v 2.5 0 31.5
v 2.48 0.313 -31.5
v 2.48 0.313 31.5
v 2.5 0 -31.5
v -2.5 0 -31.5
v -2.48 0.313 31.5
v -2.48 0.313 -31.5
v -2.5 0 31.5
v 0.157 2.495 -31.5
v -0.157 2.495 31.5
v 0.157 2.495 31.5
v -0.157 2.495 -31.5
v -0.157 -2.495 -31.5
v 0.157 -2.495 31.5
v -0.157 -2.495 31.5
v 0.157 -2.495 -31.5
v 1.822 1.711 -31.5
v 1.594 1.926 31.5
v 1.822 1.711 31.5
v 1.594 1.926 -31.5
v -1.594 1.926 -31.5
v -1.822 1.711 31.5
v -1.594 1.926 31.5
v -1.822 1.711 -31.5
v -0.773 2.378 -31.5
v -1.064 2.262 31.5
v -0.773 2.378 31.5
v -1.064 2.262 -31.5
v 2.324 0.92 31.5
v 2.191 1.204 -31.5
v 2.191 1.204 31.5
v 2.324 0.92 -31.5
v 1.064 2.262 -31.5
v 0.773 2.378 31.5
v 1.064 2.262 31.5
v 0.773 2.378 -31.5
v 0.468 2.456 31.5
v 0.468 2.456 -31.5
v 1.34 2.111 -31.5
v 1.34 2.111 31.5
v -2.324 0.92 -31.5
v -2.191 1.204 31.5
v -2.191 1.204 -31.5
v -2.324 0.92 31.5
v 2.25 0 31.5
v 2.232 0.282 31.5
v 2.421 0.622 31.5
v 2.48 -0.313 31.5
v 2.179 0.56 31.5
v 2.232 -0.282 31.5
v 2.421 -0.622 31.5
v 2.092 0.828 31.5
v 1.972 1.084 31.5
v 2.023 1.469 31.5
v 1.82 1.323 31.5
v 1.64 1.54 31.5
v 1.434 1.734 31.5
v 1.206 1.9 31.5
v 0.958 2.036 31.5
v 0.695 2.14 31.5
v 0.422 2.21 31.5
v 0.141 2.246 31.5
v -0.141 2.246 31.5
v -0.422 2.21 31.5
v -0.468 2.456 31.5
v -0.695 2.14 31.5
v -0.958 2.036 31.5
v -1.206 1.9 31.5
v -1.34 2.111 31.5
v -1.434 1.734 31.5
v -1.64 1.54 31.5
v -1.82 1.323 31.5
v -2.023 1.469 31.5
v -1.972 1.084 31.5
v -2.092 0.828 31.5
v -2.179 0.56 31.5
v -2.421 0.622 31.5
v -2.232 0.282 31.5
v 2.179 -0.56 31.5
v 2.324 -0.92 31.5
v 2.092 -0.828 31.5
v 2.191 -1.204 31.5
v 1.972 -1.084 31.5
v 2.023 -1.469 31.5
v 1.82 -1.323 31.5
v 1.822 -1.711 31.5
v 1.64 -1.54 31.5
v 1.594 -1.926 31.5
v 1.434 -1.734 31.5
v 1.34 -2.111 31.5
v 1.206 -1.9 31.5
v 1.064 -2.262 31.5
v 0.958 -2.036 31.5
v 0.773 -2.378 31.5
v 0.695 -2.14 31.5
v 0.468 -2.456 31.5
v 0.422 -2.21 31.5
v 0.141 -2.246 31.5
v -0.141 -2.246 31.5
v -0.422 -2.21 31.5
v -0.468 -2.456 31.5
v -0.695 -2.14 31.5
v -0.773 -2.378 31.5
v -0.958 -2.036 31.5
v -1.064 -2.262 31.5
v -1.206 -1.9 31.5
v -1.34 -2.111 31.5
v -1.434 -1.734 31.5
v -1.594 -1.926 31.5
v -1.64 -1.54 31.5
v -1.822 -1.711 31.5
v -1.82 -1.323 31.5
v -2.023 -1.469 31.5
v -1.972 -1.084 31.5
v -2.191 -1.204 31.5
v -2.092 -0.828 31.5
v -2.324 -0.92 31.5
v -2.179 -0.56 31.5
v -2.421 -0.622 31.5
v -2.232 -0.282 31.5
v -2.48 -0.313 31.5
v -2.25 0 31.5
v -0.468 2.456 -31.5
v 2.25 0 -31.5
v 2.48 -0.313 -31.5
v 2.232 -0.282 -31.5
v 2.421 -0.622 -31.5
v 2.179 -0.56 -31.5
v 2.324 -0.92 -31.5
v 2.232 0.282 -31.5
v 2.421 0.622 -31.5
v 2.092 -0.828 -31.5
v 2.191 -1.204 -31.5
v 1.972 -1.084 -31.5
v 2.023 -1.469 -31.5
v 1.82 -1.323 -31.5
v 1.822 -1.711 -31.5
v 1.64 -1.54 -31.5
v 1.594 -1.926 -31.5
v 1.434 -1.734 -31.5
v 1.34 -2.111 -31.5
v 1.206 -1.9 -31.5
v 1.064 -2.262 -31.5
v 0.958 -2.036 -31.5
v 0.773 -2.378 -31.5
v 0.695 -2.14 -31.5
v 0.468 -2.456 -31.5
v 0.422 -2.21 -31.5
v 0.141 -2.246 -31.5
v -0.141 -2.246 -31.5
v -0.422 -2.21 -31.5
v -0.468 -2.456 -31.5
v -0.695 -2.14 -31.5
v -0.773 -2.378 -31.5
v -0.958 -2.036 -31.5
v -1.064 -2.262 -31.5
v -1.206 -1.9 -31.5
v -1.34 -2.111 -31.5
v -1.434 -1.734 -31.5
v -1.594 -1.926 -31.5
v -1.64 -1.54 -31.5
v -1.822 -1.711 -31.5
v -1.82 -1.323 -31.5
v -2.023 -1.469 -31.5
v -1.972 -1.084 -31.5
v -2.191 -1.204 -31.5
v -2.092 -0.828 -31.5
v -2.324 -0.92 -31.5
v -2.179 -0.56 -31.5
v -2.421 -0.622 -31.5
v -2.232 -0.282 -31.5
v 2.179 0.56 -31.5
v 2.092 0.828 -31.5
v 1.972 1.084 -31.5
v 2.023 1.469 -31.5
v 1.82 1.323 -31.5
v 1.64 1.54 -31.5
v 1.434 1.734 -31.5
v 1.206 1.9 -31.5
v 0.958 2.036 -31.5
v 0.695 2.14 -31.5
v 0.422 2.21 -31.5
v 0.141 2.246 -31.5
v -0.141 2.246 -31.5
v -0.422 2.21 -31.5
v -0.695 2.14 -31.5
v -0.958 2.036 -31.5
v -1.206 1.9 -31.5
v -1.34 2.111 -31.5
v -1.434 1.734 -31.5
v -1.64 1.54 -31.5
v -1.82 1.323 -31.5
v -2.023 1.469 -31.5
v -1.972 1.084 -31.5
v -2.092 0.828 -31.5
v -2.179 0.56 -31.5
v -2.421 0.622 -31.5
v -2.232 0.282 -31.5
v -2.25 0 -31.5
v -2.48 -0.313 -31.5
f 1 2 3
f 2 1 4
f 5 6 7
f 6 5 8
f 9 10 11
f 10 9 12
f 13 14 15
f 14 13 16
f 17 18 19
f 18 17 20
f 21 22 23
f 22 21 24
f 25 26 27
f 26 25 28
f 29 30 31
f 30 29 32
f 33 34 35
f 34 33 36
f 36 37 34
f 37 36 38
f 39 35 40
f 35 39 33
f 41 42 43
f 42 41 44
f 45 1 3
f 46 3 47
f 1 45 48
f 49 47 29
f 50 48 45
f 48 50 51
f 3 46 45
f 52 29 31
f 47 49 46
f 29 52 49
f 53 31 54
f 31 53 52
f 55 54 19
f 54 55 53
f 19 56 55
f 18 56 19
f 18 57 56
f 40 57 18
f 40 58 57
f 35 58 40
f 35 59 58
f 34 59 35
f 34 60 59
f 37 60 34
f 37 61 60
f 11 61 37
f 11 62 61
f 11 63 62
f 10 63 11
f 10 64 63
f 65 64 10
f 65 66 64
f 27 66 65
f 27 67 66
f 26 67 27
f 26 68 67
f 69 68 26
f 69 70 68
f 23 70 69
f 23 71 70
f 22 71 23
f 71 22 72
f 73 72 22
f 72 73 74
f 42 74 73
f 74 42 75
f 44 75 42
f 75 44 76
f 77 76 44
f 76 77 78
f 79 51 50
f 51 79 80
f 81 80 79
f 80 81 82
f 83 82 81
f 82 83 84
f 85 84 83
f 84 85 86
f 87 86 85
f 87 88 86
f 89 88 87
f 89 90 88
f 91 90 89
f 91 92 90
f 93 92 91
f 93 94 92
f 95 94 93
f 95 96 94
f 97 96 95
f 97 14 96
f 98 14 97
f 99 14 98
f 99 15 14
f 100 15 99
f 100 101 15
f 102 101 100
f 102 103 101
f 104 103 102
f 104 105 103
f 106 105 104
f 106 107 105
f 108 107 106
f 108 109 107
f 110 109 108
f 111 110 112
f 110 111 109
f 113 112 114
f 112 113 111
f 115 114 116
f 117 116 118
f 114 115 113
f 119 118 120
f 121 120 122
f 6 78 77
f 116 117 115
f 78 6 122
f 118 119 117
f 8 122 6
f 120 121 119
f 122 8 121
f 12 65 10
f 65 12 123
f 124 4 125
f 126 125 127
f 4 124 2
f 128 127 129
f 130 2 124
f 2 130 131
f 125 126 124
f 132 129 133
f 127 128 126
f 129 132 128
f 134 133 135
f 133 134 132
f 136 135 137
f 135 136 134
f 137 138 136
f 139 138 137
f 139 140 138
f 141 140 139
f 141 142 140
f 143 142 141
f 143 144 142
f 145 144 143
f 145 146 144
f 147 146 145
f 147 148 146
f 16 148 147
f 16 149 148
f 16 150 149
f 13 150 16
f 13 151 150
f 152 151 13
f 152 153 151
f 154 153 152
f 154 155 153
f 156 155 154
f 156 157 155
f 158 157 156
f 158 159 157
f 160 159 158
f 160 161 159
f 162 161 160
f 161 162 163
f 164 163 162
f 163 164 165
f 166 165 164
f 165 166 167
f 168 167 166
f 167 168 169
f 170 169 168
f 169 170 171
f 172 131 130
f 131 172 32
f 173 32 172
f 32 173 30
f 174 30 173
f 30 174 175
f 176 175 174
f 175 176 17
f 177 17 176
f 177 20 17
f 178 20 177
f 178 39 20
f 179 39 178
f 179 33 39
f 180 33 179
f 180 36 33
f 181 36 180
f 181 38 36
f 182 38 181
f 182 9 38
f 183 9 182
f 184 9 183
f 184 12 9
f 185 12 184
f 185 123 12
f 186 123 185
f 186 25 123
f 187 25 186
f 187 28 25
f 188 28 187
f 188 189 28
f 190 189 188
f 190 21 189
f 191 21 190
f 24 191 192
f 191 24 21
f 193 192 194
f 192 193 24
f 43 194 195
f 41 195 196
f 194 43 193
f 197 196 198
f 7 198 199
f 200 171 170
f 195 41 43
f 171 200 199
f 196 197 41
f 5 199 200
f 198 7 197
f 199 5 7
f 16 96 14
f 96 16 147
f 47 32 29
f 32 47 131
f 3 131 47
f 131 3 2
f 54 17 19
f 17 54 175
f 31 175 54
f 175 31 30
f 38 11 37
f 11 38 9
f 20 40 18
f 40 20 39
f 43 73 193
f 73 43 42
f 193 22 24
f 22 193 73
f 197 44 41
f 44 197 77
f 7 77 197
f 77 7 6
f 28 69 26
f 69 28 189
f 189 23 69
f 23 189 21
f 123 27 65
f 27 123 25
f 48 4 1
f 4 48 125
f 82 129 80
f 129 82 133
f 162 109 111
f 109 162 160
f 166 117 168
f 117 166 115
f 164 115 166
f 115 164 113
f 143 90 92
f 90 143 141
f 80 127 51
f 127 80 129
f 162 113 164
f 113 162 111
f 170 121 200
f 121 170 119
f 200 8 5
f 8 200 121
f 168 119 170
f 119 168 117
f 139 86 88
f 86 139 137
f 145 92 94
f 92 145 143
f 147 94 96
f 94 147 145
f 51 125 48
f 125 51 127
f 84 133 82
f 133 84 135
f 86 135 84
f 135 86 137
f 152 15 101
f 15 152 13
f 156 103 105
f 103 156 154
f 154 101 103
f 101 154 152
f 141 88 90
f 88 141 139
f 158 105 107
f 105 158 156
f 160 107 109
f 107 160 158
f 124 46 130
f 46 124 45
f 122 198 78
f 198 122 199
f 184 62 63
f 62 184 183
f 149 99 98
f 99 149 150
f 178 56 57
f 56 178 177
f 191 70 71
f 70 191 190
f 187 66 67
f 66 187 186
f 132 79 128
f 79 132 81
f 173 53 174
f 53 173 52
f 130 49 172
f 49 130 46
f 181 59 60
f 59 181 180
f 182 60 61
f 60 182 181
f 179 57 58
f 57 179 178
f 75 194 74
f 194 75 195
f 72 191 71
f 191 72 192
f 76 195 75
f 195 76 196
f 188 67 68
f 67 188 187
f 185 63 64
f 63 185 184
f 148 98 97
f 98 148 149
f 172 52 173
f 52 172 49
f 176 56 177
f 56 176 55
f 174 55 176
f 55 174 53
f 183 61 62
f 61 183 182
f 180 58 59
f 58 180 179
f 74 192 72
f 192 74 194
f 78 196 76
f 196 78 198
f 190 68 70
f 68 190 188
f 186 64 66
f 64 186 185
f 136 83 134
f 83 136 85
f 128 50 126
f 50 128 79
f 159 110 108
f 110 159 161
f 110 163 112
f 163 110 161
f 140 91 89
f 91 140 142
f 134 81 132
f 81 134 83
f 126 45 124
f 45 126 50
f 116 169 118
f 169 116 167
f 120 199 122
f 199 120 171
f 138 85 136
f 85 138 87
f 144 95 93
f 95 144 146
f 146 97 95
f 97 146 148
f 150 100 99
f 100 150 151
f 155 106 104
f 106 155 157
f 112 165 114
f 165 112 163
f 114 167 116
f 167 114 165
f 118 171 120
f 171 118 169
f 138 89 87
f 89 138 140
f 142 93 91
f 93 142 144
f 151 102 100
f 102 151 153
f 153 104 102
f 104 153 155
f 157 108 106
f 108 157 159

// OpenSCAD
$fn = 50;


difference() {
	union() {
		translate(v = [0, 0, -31.5000000000]) {
			cylinder(h = 63, r = 2.5000000000);
		}
	}
	union() {
		translate(v = [0, 0, -100.0000000000]) {
			cylinder(h = 200, r = 2.2500000000);
		}
	}
}
